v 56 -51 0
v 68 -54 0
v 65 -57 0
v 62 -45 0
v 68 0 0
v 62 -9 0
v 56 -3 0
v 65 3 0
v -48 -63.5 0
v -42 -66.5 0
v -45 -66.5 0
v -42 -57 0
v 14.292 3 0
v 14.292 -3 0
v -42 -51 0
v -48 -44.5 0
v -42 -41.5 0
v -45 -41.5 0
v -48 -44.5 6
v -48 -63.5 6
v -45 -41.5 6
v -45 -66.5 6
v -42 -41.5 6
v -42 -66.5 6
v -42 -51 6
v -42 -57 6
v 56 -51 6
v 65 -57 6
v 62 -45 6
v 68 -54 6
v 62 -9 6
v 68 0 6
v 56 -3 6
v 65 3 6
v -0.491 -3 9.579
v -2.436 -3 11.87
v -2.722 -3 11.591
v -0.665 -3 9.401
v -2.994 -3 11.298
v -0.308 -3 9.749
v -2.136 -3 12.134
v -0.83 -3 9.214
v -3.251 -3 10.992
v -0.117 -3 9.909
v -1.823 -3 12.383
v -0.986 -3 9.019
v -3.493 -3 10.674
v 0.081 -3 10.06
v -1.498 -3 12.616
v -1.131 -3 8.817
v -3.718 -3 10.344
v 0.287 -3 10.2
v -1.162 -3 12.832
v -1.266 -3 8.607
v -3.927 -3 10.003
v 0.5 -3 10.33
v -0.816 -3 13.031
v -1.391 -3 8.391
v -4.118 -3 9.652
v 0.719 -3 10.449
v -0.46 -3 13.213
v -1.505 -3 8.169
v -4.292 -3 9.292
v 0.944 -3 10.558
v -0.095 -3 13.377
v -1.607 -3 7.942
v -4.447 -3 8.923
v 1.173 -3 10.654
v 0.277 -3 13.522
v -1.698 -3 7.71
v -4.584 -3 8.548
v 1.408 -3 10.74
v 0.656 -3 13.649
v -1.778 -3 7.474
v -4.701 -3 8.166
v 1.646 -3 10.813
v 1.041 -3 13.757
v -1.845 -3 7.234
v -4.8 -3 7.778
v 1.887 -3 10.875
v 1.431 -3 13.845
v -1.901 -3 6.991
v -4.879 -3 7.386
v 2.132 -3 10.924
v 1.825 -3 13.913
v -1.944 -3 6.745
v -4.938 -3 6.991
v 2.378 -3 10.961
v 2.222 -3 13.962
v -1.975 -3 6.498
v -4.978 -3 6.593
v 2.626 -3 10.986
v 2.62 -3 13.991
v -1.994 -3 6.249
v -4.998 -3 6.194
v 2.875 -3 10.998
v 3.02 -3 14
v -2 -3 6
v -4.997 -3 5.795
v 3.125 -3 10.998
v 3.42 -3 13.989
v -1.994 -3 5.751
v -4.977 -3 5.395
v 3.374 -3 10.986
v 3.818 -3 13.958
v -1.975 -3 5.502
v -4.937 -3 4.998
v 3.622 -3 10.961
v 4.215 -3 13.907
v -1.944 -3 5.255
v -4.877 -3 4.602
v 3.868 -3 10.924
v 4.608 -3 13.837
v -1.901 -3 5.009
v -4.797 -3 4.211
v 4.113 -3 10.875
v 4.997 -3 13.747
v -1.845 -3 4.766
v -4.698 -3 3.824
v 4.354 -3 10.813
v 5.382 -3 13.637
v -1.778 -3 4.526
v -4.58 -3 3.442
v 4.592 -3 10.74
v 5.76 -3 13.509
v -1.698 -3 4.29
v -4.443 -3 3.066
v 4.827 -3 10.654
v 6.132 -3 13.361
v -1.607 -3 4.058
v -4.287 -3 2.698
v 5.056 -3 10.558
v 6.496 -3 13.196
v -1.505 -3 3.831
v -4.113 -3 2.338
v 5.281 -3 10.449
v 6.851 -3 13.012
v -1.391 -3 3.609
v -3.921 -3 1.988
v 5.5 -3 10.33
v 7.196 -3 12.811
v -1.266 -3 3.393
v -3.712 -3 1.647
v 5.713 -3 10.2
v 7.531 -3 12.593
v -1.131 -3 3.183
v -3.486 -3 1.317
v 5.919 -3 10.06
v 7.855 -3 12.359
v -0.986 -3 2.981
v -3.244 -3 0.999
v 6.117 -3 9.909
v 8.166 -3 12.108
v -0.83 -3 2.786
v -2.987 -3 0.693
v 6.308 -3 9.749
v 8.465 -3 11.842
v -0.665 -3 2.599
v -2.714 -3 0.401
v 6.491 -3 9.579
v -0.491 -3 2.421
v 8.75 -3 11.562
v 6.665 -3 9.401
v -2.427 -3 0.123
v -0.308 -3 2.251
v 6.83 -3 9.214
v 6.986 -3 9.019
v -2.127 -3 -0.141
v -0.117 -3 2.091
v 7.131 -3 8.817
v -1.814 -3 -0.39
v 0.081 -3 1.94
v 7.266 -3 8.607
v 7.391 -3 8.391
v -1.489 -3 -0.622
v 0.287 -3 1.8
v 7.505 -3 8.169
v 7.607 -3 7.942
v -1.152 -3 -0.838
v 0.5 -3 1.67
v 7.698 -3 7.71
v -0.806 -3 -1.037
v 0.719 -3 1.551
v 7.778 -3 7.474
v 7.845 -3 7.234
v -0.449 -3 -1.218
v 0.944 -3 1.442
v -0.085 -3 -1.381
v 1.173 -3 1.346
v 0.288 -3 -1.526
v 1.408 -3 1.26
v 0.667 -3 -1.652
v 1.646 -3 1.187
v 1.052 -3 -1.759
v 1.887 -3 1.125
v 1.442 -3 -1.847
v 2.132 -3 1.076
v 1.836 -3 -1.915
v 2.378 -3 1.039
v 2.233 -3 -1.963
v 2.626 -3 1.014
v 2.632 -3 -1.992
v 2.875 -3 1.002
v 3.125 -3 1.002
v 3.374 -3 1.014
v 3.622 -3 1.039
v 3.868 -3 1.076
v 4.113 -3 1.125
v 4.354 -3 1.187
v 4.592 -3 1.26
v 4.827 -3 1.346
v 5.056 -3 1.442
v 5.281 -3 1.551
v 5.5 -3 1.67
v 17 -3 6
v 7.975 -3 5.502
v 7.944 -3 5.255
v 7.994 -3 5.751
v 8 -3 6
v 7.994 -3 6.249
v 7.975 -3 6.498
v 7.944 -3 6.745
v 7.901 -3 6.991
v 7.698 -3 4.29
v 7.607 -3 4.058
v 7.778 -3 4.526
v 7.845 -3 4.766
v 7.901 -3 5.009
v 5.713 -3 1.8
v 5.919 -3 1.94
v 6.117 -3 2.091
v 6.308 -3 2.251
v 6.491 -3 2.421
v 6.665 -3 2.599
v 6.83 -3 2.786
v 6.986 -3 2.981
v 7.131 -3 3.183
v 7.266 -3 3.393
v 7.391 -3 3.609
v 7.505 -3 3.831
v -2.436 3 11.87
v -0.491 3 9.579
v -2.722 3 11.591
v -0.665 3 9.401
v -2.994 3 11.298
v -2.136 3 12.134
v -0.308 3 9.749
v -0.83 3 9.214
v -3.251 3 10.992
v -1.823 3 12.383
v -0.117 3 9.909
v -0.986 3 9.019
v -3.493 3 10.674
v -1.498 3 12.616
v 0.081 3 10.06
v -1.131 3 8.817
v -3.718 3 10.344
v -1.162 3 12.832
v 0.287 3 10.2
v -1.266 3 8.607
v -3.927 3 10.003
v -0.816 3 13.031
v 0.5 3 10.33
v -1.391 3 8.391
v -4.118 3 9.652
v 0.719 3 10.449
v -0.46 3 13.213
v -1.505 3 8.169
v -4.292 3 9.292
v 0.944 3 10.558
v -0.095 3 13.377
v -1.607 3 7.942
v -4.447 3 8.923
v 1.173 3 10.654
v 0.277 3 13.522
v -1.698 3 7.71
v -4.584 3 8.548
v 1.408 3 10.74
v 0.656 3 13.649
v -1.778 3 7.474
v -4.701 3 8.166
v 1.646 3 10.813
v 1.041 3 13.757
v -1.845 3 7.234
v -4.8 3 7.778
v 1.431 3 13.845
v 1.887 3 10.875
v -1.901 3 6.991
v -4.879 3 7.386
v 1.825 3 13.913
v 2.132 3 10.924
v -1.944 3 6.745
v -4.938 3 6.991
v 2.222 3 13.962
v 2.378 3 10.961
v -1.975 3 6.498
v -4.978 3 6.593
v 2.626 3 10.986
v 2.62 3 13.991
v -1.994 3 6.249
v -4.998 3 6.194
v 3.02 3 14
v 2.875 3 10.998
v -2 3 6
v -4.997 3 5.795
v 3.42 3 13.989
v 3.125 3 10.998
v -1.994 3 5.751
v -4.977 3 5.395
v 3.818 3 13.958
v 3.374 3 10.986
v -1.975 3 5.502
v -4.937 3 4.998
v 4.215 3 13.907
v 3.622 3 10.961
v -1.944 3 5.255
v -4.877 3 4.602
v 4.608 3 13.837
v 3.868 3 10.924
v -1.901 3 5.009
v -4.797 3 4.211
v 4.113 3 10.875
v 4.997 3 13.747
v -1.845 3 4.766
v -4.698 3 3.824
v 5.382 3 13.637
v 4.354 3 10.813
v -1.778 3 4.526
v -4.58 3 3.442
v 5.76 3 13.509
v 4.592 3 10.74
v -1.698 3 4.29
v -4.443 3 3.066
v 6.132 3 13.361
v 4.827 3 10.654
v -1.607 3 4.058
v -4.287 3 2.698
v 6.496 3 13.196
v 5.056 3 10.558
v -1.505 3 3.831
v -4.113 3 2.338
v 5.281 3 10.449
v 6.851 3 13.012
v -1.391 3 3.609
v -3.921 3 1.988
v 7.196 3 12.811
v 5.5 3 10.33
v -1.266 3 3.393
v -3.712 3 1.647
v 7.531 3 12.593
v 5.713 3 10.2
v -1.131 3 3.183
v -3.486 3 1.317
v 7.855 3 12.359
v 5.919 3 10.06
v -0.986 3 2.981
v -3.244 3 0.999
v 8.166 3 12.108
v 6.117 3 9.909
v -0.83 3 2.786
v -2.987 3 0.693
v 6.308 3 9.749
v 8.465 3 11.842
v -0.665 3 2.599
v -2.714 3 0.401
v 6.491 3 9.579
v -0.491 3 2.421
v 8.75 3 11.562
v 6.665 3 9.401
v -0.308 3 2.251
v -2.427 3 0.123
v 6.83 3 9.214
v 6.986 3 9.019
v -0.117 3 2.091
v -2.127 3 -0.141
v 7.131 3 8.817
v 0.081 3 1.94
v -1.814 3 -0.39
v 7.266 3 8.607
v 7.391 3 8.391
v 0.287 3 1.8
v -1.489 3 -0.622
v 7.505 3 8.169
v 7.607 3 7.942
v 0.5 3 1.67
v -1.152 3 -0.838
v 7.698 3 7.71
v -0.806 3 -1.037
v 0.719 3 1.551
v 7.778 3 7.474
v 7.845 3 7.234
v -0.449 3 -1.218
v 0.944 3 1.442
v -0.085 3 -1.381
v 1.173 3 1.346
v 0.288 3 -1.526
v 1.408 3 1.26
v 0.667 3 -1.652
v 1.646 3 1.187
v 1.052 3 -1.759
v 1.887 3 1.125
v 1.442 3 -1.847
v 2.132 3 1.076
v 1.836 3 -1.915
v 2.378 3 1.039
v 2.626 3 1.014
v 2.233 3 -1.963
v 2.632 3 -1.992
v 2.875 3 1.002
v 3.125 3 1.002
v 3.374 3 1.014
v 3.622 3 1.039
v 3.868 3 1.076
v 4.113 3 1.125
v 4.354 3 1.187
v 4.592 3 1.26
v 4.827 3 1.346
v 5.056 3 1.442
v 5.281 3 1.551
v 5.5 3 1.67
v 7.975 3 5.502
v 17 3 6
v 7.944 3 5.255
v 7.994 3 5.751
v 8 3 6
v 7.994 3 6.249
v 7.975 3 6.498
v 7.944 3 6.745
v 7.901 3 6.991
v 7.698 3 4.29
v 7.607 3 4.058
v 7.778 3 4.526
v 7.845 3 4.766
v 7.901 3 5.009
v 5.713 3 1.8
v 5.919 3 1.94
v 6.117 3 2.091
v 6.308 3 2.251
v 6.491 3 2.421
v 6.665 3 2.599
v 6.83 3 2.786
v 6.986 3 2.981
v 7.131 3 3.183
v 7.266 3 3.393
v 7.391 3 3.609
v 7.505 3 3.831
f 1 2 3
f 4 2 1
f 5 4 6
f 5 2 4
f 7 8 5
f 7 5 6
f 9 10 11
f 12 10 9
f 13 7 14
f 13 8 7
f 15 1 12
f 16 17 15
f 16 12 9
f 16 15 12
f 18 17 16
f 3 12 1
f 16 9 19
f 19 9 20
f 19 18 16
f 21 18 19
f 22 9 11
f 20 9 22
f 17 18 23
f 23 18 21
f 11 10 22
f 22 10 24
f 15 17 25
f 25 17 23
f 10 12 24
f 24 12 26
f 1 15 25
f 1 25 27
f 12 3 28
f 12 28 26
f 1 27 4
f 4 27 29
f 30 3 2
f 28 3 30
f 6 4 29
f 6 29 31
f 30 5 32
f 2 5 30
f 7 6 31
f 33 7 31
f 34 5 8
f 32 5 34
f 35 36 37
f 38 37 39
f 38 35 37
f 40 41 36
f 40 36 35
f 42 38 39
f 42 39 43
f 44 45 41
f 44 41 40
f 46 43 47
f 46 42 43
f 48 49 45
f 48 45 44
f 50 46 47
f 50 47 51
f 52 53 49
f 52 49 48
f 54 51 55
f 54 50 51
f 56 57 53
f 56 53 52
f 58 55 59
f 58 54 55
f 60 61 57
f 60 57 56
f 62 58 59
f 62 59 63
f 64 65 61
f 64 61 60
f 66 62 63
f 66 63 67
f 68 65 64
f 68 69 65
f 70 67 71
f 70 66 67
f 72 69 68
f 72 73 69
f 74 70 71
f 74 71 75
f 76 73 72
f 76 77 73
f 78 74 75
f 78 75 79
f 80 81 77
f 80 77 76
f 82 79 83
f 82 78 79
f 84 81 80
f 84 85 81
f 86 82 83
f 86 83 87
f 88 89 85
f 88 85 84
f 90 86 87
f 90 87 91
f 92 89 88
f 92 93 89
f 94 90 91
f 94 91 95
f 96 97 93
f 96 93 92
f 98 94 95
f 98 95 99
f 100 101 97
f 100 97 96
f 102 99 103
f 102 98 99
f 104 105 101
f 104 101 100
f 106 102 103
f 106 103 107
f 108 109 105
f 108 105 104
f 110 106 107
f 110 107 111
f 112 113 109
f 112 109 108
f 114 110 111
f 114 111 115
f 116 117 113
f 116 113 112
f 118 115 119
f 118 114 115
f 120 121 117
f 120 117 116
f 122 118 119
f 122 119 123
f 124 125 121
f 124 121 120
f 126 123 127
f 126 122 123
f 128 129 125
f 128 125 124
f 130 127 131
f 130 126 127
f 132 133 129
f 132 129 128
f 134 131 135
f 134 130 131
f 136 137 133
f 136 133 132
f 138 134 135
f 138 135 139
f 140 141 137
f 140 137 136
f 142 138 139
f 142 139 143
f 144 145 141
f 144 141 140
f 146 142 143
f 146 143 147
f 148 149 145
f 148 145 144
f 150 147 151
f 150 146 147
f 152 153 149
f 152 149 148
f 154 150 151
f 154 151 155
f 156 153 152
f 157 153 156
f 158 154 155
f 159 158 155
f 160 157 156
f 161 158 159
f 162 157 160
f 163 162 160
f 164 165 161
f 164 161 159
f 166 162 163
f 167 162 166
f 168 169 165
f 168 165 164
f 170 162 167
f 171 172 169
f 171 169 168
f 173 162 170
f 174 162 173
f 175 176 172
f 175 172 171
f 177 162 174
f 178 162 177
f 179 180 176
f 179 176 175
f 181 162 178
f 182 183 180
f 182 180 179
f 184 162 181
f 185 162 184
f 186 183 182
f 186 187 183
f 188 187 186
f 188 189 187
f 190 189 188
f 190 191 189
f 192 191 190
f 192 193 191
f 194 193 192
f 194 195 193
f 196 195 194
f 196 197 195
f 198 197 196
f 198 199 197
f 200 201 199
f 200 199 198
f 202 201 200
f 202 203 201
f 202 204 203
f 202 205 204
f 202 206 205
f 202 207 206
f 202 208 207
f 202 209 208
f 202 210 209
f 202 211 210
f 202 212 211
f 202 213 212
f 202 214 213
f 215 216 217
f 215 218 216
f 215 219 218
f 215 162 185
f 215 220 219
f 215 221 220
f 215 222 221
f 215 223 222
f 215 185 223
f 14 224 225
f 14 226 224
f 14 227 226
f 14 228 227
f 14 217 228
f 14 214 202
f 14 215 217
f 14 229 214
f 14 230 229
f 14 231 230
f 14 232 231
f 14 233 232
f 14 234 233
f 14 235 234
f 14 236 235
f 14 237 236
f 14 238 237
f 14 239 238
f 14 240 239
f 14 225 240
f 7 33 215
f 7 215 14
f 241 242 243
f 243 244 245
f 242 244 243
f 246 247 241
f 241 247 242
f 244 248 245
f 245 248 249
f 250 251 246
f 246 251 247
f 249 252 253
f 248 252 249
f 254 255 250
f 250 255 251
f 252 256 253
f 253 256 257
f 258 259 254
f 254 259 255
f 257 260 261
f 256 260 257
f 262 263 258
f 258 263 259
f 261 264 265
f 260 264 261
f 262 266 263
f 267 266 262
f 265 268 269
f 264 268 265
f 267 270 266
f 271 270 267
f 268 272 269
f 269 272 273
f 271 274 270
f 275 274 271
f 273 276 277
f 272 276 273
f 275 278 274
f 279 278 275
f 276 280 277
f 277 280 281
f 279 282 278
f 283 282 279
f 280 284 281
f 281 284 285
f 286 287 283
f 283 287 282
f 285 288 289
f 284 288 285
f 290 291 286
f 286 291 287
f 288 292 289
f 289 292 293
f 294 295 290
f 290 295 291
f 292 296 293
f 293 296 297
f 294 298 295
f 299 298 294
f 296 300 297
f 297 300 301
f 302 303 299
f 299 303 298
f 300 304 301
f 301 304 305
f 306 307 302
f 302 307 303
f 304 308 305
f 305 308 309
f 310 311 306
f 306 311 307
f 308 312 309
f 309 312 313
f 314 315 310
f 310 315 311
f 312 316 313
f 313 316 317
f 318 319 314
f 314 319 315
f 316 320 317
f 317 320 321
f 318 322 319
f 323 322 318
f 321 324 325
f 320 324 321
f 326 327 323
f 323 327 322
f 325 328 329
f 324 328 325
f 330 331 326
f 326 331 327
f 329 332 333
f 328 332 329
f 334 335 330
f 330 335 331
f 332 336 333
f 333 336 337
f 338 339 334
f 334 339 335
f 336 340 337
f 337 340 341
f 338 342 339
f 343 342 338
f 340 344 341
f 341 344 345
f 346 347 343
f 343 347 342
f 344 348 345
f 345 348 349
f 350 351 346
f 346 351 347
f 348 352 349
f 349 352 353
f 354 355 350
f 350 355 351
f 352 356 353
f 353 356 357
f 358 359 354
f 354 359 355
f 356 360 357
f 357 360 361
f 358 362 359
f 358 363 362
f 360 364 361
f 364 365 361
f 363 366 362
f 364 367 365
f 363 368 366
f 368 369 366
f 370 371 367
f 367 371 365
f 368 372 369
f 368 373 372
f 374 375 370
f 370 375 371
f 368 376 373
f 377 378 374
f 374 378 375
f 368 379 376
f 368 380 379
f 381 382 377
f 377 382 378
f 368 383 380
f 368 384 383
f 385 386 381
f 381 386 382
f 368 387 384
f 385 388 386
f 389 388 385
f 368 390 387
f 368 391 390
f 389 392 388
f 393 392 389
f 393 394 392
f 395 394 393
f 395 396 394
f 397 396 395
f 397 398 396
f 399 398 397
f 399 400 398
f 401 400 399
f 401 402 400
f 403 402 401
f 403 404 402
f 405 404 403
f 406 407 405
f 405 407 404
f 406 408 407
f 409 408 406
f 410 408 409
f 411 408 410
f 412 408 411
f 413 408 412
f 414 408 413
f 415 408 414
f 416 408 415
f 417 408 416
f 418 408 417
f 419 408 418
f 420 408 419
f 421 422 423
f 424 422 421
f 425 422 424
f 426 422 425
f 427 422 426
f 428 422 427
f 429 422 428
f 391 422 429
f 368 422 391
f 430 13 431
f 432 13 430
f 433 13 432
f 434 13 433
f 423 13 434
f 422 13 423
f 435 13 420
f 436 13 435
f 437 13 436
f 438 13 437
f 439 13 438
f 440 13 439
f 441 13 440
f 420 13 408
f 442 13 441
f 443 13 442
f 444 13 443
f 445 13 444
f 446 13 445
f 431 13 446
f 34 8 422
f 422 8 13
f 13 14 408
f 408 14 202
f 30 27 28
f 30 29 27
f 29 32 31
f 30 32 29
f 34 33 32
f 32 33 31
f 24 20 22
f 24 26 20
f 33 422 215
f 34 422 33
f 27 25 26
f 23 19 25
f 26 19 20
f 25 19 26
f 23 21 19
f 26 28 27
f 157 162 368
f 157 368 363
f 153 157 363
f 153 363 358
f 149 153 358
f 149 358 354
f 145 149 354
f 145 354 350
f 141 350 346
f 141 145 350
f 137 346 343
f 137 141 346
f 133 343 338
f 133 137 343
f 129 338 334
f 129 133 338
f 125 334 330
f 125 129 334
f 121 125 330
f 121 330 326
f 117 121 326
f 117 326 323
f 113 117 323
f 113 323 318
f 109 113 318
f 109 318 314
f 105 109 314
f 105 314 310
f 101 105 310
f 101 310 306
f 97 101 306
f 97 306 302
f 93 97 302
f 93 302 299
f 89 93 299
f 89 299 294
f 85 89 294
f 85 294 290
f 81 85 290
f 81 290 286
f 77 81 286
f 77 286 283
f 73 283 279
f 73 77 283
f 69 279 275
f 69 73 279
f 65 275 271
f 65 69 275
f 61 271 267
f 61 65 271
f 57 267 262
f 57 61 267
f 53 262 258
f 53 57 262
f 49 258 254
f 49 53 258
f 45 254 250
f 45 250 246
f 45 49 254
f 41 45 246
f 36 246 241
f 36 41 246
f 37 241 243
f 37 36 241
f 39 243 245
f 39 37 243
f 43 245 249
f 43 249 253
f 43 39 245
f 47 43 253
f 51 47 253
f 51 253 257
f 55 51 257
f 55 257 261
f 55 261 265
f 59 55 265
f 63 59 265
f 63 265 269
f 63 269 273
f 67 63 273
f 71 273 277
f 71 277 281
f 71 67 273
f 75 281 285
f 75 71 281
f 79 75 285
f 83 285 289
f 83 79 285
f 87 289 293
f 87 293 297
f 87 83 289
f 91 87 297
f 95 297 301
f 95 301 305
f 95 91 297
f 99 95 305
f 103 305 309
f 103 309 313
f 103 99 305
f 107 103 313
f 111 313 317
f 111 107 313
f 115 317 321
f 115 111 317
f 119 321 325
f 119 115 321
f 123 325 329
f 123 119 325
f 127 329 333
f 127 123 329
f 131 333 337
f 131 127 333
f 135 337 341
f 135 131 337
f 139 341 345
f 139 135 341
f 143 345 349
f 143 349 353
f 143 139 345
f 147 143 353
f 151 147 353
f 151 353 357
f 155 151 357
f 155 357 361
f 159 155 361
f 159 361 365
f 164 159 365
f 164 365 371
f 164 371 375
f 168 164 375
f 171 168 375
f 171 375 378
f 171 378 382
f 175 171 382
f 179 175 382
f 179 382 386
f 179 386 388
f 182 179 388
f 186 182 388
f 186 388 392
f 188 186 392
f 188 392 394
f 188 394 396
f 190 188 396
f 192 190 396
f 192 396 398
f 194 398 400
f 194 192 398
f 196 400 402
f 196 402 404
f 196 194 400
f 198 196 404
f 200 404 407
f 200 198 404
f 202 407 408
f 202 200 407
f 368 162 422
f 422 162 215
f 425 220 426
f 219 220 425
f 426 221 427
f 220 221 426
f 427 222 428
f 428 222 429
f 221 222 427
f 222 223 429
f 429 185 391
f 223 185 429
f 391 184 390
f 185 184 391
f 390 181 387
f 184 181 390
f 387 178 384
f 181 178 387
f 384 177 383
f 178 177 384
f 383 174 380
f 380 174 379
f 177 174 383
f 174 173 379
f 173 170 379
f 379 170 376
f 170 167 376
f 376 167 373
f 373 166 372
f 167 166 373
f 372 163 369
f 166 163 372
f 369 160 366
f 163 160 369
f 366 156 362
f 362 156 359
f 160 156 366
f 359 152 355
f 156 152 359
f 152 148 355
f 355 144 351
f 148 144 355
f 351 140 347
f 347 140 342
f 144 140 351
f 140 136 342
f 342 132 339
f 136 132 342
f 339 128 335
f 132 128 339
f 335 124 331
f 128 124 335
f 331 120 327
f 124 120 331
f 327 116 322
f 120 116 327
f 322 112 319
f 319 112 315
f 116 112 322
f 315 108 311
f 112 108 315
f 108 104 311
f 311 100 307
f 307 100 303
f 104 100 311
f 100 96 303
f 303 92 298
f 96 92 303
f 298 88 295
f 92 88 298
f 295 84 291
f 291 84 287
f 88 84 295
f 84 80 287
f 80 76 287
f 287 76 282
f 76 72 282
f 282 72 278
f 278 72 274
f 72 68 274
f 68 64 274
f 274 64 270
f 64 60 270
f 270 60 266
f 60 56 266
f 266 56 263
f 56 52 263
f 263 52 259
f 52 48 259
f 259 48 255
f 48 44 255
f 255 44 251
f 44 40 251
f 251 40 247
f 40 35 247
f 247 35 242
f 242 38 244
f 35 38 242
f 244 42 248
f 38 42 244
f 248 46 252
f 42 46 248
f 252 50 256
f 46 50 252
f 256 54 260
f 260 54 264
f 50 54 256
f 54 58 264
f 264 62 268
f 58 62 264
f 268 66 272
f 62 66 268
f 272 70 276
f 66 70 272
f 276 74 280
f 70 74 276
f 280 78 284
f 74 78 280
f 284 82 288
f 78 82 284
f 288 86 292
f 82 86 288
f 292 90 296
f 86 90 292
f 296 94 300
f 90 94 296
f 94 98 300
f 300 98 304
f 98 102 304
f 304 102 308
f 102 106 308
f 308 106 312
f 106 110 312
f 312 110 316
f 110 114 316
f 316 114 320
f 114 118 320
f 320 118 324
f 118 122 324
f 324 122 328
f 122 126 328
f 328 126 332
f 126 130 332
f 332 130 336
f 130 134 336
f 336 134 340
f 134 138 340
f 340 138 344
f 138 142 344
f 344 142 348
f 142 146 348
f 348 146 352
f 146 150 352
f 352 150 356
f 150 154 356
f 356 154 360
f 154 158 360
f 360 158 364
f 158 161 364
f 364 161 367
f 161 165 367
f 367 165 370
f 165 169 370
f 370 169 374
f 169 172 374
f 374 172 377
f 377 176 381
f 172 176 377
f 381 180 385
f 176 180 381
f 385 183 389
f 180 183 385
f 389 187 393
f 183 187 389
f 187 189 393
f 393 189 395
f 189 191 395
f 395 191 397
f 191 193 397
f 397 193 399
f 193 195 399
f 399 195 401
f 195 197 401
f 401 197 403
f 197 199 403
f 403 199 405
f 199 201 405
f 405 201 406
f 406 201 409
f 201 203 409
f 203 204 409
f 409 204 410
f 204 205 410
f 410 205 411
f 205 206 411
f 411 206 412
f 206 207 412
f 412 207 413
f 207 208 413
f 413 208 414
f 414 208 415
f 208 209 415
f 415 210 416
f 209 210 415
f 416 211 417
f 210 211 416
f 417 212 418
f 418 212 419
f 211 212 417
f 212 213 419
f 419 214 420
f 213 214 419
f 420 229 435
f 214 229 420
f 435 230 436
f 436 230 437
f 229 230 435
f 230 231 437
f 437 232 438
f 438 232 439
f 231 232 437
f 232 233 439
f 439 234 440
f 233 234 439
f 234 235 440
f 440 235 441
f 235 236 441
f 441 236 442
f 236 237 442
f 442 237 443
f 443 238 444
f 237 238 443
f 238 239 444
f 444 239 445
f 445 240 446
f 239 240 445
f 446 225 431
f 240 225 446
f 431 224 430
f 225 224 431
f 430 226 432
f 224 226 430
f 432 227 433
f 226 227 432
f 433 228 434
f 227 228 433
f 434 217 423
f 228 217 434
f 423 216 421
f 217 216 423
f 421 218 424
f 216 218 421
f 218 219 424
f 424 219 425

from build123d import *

# Parameters (mm, degrees)
PAD_DEPTH           = 6
CYLINDER001_R       = 5
CYLINDER001_DEPTH   = 6
CYLINDER_R          = 8
CYLINDER_DEPTH      = 6
CUT_PLACEMENT_ANGLE = 90
CHAMFER_SIZE        = 6
CHAMFER001_SIZE     = 6
CHAMFER002_SIZE     = 6
CHAMFER003_SIZE     = 6
CHAMFER004_SIZE     = 3
CHAMFER005_SIZE     = 3
CHAMFER006_SIZE     = 3
CHAMFER007_SIZE     = 3


with BuildPart() as pad:
    # Sketch → Pad (new body)
    with BuildSketch(Plane.XY):
        Polygon((8, 3), (68, 3), (68, -57), (-42, -57), (-42, -66.5), (-48, -66.5), (-48, -41.5), (-42, -41.5), (-42, -51), (62, -51), (62, -3), (8, -3), align=None)
    extrude(amount=PAD_DEPTH)


with BuildPart() as cilindro001:
    # Cylinder001 → Cylinder001 (new body)
    with BuildSketch(Plane(origin=(3, 3, 0), x_dir=(1, 0, 0), z_dir=(0, 0, 1))):
        Circle(CYLINDER001_R)
    extrude(amount=CYLINDER001_DEPTH)


with BuildPart() as chamfer007:
    # Cylinder → Cylinder (new body)
    with BuildSketch(Plane(origin=(3, 3, 0), x_dir=(1, 0, 0), z_dir=(0, 0, 1))):
        Circle(CYLINDER_R)
    extrude(amount=CYLINDER_DEPTH)

    # Cut: cut Cilindro001
    add(cilindro001.part, mode=Mode.SUBTRACT)


with BuildPart() as chamfer007_1:
    # Cut placement: moved
    add(chamfer007.part.moved(Location((0, 3, 3))).rotate(Axis((0, 3, 3), (1, 0, 0)), CUT_PLACEMENT_ANGLE))

    # Fusion: union Pad
    add(pad.part)

    # Chamfer
    chamfer_edges = [chamfer007_1.edges().sort_by_distance(p)[0] for p in [
        (11, 0, 6),
    ]]
    chamfer(chamfer_edges, length=CHAMFER_SIZE)

    # Chamfer001
    chamfer001_edges = [chamfer007_1.edges().sort_by_distance(p)[0] for p in [
        (8.291503, 0, 0),
    ]]
    chamfer(chamfer001_edges, length=CHAMFER001_SIZE)

    # Chamfer002
    chamfer002_edges = [chamfer007_1.edges().sort_by_distance(p)[0] for p in [
        (62, -51, 3),
    ]]
    chamfer(chamfer002_edges, length=CHAMFER002_SIZE)

    # Chamfer003
    chamfer003_edges = [chamfer007_1.edges().sort_by_distance(p)[0] for p in [
        (62, -3, 3),
    ]]
    chamfer(chamfer003_edges, length=CHAMFER003_SIZE)

    # Chamfer004
    chamfer004_edges = [chamfer007_1.edges().sort_by_distance(p)[0] for p in [
        (68, 3, 3),
    ]]
    chamfer(chamfer004_edges, length=CHAMFER004_SIZE)

    # Chamfer005
    chamfer005_edges = [chamfer007_1.edges().sort_by_distance(p)[0] for p in [
        (68, -57, 3),
    ]]
    chamfer(chamfer005_edges, length=CHAMFER005_SIZE)

    # Chamfer006
    chamfer006_edges = [chamfer007_1.edges().sort_by_distance(p)[0] for p in [
        (-48, -66.5, 3),
    ]]
    chamfer(chamfer006_edges, length=CHAMFER006_SIZE)

    # Chamfer007
    chamfer007_edges = [chamfer007_1.edges().sort_by_distance(p)[0] for p in [
        (-48, -41.5, 3),
    ]]
    chamfer(chamfer007_edges, length=CHAMFER007_SIZE)


solid = chamfer007_1.part
